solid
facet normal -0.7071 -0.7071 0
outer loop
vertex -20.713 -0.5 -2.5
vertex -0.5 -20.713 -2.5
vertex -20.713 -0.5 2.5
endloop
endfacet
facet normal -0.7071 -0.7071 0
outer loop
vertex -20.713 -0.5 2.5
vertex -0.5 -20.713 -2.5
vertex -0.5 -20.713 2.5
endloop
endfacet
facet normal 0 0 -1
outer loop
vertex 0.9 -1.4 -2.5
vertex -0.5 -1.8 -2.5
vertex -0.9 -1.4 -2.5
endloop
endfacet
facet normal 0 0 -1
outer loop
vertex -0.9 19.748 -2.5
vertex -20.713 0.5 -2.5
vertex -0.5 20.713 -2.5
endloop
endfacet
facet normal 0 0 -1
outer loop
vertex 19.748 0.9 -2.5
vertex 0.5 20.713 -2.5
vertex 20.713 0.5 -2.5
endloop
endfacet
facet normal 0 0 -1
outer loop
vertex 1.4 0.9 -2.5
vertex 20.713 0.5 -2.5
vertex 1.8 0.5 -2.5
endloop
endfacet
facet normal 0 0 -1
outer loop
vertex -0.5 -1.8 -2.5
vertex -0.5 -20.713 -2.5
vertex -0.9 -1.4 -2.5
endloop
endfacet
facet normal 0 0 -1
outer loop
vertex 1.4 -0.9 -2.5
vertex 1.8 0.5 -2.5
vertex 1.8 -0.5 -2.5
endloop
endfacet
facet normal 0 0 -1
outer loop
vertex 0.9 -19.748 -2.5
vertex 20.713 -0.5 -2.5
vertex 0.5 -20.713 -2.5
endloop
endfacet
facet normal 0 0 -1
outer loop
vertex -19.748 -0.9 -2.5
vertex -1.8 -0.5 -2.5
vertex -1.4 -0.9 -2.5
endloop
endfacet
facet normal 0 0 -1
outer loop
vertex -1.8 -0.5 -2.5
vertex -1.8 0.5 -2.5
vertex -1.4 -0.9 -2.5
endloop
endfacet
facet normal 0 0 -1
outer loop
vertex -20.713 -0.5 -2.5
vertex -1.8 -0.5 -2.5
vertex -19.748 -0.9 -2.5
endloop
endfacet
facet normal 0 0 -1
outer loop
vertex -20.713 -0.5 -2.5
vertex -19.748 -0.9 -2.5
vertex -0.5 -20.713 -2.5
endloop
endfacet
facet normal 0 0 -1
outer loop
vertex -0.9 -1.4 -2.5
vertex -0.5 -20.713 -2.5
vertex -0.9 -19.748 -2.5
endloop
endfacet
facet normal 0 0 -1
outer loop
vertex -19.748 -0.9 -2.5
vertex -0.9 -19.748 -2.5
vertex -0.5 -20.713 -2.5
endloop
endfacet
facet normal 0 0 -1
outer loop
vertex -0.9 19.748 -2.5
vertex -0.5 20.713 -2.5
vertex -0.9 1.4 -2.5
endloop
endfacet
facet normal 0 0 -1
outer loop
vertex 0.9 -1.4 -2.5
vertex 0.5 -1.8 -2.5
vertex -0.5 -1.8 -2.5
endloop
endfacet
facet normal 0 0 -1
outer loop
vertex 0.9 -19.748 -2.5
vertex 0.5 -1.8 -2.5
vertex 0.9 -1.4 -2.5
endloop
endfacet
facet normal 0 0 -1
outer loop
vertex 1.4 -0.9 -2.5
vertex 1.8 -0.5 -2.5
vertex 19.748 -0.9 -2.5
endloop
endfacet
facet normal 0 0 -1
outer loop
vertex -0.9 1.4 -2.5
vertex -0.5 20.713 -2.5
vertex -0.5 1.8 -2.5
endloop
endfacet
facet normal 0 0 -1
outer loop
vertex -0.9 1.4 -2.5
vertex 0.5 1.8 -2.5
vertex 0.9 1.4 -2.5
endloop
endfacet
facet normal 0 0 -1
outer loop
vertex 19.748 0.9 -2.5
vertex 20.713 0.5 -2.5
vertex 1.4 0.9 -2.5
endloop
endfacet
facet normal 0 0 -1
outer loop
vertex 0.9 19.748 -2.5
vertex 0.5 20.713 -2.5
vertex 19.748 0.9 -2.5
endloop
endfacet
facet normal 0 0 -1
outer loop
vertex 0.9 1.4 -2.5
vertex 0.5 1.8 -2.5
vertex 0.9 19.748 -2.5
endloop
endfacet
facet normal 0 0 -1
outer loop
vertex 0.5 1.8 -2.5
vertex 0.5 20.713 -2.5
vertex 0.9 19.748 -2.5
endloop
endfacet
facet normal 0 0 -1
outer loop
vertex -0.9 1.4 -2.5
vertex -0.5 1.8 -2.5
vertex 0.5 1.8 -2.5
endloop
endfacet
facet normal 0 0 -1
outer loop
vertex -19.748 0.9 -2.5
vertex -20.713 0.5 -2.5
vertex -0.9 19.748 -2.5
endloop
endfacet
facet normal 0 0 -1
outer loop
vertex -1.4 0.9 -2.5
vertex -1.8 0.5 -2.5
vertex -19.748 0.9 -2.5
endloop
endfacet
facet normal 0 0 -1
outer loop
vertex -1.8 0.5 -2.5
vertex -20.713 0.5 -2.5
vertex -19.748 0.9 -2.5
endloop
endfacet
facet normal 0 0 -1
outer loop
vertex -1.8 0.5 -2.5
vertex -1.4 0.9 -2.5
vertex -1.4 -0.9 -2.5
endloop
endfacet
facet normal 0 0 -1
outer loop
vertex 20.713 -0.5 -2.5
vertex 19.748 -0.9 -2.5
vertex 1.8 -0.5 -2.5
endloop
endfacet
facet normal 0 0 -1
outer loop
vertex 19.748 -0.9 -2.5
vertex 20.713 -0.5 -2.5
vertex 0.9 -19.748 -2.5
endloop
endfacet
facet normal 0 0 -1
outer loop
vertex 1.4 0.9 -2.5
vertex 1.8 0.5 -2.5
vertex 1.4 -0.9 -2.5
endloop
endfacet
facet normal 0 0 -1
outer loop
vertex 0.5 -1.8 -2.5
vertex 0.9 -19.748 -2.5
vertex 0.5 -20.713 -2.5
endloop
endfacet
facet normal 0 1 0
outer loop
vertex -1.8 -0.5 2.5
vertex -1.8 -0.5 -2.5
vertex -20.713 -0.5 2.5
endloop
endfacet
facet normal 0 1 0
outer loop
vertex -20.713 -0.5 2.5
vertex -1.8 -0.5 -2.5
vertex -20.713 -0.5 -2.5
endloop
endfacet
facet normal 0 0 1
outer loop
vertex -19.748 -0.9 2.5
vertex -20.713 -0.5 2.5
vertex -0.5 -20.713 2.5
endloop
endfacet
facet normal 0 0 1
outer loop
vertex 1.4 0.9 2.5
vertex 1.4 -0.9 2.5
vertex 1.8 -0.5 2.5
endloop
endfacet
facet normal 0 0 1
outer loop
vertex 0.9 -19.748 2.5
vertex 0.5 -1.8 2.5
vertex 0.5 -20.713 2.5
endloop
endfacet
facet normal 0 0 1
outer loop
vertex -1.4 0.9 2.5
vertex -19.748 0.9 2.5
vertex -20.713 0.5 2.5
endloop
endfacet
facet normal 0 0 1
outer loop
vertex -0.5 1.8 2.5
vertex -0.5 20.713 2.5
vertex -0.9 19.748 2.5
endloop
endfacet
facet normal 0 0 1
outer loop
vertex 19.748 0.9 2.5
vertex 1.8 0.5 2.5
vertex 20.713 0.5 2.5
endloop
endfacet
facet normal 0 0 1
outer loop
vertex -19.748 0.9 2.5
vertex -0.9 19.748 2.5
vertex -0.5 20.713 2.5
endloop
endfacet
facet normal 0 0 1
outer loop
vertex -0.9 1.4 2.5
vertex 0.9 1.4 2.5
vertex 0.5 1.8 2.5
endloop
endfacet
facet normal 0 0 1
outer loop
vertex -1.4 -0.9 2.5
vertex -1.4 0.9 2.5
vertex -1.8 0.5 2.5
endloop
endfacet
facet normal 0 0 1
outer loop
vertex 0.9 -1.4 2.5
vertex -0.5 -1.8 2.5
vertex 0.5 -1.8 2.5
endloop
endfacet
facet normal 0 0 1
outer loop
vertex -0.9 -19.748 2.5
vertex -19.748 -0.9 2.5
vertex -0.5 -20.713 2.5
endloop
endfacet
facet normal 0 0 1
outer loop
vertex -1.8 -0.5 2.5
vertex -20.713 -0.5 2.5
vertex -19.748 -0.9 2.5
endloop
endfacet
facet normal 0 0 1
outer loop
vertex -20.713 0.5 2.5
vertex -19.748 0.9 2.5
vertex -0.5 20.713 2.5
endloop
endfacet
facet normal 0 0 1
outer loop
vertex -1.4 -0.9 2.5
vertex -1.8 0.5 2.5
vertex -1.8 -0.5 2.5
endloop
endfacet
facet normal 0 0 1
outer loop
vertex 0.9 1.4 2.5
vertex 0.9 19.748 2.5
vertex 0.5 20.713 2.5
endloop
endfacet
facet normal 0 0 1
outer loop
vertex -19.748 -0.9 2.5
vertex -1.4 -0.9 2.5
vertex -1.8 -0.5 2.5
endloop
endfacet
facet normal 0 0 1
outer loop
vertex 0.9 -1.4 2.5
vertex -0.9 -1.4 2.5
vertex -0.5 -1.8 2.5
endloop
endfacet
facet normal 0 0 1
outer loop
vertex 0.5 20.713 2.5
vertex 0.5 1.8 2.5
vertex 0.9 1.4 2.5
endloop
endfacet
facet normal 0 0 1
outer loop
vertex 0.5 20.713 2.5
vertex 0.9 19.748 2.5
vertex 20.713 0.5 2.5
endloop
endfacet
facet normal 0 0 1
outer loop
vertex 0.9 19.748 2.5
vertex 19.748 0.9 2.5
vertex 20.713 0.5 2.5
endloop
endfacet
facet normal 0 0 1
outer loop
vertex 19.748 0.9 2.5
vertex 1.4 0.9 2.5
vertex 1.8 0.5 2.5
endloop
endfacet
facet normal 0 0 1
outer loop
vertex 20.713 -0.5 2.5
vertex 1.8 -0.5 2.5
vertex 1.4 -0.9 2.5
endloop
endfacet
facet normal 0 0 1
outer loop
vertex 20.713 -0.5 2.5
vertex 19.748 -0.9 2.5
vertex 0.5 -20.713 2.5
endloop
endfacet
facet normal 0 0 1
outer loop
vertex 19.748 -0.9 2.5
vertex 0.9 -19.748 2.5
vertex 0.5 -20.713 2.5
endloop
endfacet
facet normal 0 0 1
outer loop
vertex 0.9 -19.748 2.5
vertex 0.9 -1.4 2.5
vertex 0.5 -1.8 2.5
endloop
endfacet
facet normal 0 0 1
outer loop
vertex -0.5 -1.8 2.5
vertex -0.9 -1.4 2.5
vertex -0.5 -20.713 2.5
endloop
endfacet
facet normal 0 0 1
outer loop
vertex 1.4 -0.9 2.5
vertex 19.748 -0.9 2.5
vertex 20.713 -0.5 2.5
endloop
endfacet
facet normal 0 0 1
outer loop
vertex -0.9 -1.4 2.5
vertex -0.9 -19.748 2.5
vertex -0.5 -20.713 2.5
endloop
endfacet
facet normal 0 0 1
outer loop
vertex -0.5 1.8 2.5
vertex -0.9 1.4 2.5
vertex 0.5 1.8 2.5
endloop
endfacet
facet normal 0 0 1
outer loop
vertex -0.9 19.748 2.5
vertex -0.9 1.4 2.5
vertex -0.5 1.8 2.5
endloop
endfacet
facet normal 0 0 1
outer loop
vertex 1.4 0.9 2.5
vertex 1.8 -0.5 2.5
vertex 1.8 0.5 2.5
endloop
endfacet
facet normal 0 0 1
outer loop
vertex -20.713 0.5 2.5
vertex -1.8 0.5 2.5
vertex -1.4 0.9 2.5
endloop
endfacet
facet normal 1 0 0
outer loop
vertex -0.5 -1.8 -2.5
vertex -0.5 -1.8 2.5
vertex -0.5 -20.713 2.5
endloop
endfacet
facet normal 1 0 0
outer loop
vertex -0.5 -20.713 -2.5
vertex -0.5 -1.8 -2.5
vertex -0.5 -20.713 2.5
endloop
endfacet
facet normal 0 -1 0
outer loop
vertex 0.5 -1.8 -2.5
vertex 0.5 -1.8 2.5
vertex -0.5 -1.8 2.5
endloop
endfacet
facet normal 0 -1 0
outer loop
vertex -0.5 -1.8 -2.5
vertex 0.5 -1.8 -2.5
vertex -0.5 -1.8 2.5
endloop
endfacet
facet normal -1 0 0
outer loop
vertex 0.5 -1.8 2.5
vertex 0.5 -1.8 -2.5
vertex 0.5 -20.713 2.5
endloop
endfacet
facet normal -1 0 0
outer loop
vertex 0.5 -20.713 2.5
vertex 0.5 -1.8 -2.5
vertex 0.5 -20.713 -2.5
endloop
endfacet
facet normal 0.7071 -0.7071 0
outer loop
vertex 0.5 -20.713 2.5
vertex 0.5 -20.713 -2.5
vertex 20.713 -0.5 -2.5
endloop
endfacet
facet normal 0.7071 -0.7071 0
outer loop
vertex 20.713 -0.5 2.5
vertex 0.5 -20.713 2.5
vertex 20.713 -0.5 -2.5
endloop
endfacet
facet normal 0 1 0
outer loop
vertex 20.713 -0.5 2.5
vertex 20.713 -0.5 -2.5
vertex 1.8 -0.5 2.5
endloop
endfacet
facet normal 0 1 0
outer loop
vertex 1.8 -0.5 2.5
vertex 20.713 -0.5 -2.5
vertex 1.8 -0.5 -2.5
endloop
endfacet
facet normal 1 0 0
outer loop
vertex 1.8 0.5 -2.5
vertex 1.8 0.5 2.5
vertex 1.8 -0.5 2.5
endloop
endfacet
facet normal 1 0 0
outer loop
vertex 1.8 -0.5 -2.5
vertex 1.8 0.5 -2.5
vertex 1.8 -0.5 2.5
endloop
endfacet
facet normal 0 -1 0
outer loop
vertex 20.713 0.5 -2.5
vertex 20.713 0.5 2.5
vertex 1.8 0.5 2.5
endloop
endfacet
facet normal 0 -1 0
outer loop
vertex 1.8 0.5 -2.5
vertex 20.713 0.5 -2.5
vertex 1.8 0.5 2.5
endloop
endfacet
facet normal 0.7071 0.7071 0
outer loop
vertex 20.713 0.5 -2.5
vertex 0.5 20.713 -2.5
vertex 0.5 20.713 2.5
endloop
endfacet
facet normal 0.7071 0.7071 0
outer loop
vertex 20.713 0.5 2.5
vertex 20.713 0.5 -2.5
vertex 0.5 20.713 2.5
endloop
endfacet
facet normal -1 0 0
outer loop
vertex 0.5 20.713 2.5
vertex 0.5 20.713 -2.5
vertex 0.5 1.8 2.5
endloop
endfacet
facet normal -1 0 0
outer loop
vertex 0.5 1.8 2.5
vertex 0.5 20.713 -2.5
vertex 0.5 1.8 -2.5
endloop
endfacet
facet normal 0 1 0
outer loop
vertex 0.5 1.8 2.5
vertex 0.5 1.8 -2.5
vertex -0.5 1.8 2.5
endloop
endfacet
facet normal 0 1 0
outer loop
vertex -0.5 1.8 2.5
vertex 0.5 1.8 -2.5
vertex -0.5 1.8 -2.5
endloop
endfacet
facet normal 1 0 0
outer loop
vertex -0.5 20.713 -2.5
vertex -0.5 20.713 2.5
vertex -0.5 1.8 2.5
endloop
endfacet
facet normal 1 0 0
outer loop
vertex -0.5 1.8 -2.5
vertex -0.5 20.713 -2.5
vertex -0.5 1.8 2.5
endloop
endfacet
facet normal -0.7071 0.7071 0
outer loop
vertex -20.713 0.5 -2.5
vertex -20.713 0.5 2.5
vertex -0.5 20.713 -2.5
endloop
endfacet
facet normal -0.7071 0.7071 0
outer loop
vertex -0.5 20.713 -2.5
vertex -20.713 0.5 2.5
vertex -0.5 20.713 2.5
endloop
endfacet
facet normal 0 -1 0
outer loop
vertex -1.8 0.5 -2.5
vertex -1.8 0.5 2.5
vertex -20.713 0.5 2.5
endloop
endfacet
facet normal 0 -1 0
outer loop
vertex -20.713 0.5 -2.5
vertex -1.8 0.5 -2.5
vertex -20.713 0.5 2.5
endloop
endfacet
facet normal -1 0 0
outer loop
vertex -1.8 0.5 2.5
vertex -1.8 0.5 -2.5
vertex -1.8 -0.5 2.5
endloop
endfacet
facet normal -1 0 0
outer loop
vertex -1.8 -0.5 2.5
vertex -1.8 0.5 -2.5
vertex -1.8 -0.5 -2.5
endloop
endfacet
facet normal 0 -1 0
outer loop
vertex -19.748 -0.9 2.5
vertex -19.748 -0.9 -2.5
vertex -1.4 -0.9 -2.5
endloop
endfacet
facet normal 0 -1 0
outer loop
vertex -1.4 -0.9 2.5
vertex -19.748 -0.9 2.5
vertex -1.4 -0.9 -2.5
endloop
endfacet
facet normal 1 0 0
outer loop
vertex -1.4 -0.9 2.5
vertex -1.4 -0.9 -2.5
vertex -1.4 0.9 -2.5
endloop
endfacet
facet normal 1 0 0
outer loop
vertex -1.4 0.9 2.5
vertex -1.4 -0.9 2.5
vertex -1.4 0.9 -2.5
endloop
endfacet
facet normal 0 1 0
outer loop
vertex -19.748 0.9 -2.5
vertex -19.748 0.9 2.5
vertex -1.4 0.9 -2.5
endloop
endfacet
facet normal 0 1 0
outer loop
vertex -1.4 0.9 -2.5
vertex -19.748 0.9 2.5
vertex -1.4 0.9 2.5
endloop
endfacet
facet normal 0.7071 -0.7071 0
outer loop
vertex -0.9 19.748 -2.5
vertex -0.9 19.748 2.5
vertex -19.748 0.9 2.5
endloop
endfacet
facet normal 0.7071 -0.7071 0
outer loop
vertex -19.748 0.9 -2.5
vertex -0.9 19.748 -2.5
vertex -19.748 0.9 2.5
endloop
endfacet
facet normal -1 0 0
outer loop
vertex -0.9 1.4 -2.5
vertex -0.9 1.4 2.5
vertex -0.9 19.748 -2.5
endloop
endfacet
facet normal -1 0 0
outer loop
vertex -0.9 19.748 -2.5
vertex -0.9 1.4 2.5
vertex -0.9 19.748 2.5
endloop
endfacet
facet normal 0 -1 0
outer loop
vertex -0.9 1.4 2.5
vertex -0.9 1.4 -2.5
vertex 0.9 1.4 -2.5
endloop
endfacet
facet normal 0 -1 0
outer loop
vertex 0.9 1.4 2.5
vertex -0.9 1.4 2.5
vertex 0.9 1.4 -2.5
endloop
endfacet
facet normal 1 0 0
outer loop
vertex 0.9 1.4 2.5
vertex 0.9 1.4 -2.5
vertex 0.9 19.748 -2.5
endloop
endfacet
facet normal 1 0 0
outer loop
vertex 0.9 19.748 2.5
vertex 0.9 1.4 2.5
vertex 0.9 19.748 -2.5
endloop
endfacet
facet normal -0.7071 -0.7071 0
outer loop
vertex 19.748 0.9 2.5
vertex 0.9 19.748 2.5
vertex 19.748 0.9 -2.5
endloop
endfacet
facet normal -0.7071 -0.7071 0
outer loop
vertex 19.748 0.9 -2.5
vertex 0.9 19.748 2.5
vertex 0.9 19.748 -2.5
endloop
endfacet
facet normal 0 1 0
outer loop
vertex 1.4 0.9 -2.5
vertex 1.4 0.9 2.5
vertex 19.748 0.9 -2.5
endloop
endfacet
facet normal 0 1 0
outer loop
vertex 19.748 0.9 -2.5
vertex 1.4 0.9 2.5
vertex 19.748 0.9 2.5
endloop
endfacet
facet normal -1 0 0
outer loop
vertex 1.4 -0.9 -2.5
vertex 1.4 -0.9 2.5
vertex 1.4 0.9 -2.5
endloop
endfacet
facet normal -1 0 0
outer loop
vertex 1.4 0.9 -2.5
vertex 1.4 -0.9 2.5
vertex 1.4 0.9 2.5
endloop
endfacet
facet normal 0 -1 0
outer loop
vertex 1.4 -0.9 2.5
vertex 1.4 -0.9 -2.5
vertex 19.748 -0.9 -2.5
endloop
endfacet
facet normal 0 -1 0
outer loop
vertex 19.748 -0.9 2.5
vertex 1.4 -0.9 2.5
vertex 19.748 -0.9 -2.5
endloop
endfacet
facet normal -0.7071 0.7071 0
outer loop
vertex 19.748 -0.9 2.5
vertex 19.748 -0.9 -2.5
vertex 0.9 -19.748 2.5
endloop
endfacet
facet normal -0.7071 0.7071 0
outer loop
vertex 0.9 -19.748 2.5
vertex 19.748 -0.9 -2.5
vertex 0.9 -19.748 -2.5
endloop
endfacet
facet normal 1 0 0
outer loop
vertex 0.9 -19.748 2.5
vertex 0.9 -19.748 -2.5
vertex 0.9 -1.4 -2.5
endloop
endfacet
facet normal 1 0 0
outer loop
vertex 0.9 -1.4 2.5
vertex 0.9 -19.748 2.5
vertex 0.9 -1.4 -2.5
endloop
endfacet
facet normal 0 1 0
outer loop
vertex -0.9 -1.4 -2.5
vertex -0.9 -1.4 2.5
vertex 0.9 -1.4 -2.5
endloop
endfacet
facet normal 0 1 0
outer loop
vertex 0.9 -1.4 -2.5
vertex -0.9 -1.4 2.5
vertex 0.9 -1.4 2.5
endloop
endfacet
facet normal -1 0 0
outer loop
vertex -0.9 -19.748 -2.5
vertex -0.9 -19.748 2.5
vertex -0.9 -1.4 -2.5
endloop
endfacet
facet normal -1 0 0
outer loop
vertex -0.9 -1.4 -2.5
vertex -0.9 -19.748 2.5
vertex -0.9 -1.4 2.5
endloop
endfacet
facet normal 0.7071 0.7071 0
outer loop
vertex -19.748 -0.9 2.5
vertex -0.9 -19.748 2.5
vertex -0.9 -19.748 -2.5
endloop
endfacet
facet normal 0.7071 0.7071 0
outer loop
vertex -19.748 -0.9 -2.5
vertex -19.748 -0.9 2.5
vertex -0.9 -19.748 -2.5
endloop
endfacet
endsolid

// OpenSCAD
h=5;
size=30;
gap=1;

width=0.4;

difference()
{
	rotate(45)
	cube([size,size,h],center=true);
	rotate(45)
	cube([size-2*width,size-2*width,h+1],center=true);

	for(i=[0:3])
	rotate(90*i)
	translate([size/2+gap+2*width,-0,0])
	cube([size,gap,h+1],center=true);
}

intersection()
{
	rotate(45)
	cube([size,size,h],center=true);
	rotate(45)
	cube([size-2*width,size-2*width,h],center=true);

	union()
	{
		for(i=[0:3])
		rotate(90*i)
		translate([size/2+gap+2*width,-0,0])
		difference()
		{
			cube([size+width*2,gap+width*2,h],center=true);
			cube([size,gap,h+1],center=true);
		}
	}
}
